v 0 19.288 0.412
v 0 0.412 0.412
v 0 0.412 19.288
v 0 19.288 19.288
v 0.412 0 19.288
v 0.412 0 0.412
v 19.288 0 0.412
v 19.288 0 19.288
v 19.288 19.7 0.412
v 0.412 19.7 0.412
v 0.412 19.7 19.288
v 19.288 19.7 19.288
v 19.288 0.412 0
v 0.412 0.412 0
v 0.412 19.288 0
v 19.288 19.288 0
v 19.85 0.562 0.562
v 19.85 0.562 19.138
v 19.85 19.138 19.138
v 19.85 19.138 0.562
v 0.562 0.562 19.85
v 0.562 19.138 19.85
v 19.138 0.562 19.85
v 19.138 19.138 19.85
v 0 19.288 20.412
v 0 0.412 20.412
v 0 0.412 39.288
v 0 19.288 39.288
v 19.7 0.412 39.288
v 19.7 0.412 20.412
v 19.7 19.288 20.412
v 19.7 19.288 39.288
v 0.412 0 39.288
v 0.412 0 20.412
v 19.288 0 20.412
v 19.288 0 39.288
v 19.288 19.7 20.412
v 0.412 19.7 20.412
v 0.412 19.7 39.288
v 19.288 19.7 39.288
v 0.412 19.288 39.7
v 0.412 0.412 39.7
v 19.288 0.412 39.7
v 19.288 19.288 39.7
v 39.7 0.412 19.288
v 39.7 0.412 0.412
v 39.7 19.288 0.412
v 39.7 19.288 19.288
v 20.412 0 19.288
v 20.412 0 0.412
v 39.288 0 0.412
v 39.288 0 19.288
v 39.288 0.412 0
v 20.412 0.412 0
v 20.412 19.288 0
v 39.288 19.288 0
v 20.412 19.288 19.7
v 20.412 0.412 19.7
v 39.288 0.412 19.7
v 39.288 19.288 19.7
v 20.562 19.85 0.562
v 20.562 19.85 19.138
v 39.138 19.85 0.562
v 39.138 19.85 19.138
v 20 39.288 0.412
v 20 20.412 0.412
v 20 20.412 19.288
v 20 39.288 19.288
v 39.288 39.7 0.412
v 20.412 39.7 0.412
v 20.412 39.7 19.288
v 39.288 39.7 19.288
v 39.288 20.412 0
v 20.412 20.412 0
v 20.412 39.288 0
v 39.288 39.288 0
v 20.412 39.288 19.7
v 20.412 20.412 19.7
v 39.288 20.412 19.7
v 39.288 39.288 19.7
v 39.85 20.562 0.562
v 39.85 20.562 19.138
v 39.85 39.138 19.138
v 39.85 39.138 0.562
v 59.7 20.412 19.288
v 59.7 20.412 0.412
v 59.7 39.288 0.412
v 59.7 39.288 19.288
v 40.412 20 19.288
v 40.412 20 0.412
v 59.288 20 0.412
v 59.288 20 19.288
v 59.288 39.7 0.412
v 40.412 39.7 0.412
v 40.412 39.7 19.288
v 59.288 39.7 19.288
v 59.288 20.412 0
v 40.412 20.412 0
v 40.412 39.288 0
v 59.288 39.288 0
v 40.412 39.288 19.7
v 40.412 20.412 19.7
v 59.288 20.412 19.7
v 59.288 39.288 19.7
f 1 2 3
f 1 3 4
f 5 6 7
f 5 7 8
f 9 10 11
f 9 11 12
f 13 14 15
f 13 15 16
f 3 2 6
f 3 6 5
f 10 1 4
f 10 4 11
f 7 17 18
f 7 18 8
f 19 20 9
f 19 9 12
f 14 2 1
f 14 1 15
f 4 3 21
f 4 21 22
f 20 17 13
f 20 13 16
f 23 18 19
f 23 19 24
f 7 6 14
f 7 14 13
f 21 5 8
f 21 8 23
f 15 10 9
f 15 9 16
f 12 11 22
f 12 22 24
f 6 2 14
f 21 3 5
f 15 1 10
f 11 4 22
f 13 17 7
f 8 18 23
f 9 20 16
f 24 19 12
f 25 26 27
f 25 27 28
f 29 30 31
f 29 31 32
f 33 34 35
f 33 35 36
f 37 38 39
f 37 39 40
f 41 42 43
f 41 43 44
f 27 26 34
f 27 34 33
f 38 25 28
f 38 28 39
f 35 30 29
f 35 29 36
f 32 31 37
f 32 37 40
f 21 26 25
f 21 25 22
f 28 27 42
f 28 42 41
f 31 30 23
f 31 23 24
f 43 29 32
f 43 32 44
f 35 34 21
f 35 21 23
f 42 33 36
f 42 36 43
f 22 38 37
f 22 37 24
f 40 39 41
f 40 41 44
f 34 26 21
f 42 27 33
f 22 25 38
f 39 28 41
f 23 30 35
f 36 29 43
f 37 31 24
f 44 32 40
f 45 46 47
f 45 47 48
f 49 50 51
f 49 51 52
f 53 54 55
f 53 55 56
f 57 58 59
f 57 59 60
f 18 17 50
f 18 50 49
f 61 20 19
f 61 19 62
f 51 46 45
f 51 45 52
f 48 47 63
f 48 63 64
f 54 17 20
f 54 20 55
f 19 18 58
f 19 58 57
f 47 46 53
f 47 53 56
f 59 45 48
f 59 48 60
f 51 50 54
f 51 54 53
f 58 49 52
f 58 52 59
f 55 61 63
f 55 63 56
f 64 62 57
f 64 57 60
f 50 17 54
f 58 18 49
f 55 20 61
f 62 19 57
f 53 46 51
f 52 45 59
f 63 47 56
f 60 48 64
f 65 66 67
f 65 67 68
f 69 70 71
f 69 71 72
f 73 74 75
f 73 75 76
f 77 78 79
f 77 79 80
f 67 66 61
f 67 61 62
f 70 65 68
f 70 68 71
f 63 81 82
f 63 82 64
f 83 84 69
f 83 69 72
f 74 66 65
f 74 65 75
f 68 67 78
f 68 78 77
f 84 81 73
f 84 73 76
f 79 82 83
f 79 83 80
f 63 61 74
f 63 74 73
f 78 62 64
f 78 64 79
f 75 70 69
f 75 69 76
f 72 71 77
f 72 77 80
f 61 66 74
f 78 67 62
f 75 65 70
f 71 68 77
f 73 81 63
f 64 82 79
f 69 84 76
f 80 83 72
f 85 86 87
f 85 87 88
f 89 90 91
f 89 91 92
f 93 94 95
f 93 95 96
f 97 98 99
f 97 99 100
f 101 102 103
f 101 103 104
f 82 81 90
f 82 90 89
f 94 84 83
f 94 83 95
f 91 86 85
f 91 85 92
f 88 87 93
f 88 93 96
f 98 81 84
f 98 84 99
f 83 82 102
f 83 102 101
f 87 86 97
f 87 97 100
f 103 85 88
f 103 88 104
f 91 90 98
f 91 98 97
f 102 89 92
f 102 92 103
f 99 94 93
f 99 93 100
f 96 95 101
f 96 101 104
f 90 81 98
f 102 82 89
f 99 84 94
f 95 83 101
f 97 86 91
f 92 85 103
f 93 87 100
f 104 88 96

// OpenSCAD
// Wongo piece 6: Lightning. GPL-3.0.
// 20 mm lattice; 0.15 mm inward surface clearance; 0.5 mm chamfer.
// Mesh is identical to the STL; changing unit scales the complete finished mesh.
unit=20;
scale([unit/20,unit/20,unit/20]) polyhedron(points=[[0,19.28786797,0.41213203],[0,0.41213203,0.41213203],[0,0.41213203,19.28786797],[0,19.28786797,19.28786797],[0.41213203,0,19.28786797],[0.41213203,0,0.41213203],[19.28786797,0,0.41213203],[19.28786797,0,19.28786797],[19.28786797,19.7,0.41213203],[0.41213203,19.7,0.41213203],[0.41213203,19.7,19.28786797],[19.28786797,19.7,19.28786797],[19.28786797,0.41213203,0],[0.41213203,0.41213203,0],[0.41213203,19.28786797,0],[19.28786797,19.28786797,0],[19.85,0.56213203,0.56213203],[19.85,0.56213203,19.13786797],[19.85,19.13786797,19.13786797],[19.85,19.13786797,0.56213203],[0.56213203,0.56213203,19.85],[0.56213203,19.13786797,19.85],[19.13786797,0.56213203,19.85],[19.13786797,19.13786797,19.85],[0,19.28786797,20.41213203],[0,0.41213203,20.41213203],[0,0.41213203,39.28786797],[0,19.28786797,39.28786797],[19.7,0.41213203,39.28786797],[19.7,0.41213203,20.41213203],[19.7,19.28786797,20.41213203],[19.7,19.28786797,39.28786797],[0.41213203,0,39.28786797],[0.41213203,0,20.41213203],[19.28786797,0,20.41213203],[19.28786797,0,39.28786797],[19.28786797,19.7,20.41213203],[0.41213203,19.7,20.41213203],[0.41213203,19.7,39.28786797],[19.28786797,19.7,39.28786797],[0.41213203,19.28786797,39.7],[0.41213203,0.41213203,39.7],[19.28786797,0.41213203,39.7],[19.28786797,19.28786797,39.7],[39.7,0.41213203,19.28786797],[39.7,0.41213203,0.41213203],[39.7,19.28786797,0.41213203],[39.7,19.28786797,19.28786797],[20.41213203,0,19.28786797],[20.41213203,0,0.41213203],[39.28786797,0,0.41213203],[39.28786797,0,19.28786797],[39.28786797,0.41213203,0],[20.41213203,0.41213203,0],[20.41213203,19.28786797,0],[39.28786797,19.28786797,0],[20.41213203,19.28786797,19.7],[20.41213203,0.41213203,19.7],[39.28786797,0.41213203,19.7],[39.28786797,19.28786797,19.7],[20.56213203,19.85,0.56213203],[20.56213203,19.85,19.13786797],[39.13786797,19.85,0.56213203],[39.13786797,19.85,19.13786797],[20,39.28786797,0.41213203],[20,20.41213203,0.41213203],[20,20.41213203,19.28786797],[20,39.28786797,19.28786797],[39.28786797,39.7,0.41213203],[20.41213203,39.7,0.41213203],[20.41213203,39.7,19.28786797],[39.28786797,39.7,19.28786797],[39.28786797,20.41213203,0],[20.41213203,20.41213203,0],[20.41213203,39.28786797,0],[39.28786797,39.28786797,0],[20.41213203,39.28786797,19.7],[20.41213203,20.41213203,19.7],[39.28786797,20.41213203,19.7],[39.28786797,39.28786797,19.7],[39.85,20.56213203,0.56213203],[39.85,20.56213203,19.13786797],[39.85,39.13786797,19.13786797],[39.85,39.13786797,0.56213203],[59.7,20.41213203,19.28786797],[59.7,20.41213203,0.41213203],[59.7,39.28786797,0.41213203],[59.7,39.28786797,19.28786797],[40.41213203,20,19.28786797],[40.41213203,20,0.41213203],[59.28786797,20,0.41213203],[59.28786797,20,19.28786797],[59.28786797,39.7,0.41213203],[40.41213203,39.7,0.41213203],[40.41213203,39.7,19.28786797],[59.28786797,39.7,19.28786797],[59.28786797,20.41213203,0],[40.41213203,20.41213203,0],[40.41213203,39.28786797,0],[59.28786797,39.28786797,0],[40.41213203,39.28786797,19.7],[40.41213203,20.41213203,19.7],[59.28786797,20.41213203,19.7],[59.28786797,39.28786797,19.7]],faces=[[2,1,0],[3,2,0],[6,5,4],[7,6,4],[10,9,8],[11,10,8],[14,13,12],[15,14,12],[5,1,2],[4,5,2],[3,0,9],[10,3,9],[17,16,6],[7,17,6],[8,19,18],[11,8,18],[0,1,13],[14,0,13],[20,2,3],[21,20,3],[12,16,19],[15,12,19],[18,17,22],[23,18,22],[13,5,6],[12,13,6],[7,4,20],[22,7,20],[8,9,14],[15,8,14],[21,10,11],[23,21,11],[13,1,5],[4,2,20],[9,0,14],[21,3,10],[6,16,12],[22,17,7],[15,19,8],[11,18,23],[26,25,24],[27,26,24],[30,29,28],[31,30,28],[34,33,32],[35,34,32],[38,37,36],[39,38,36],[42,41,40],[43,42,40],[33,25,26],[32,33,26],[27,24,37],[38,27,37],[28,29,34],[35,28,34],[36,30,31],[39,36,31],[24,25,20],[21,24,20],[41,26,27],[40,41,27],[22,29,30],[23,22,30],[31,28,42],[43,31,42],[20,33,34],[22,20,34],[35,32,41],[42,35,41],[36,37,21],[23,36,21],[40,38,39],[43,40,39],[20,25,33],[32,26,41],[37,24,21],[40,27,38],[34,29,22],[42,28,35],[23,30,36],[39,31,43],[46,45,44],[47,46,44],[50,49,48],[51,50,48],[54,53,52],[55,54,52],[58,57,56],[59,58,56],[49,16,17],[48,49,17],[18,19,60],[61,18,60],[44,45,50],[51,44,50],[62,46,47],[63,62,47],[19,16,53],[54,19,53],[57,17,18],[56,57,18],[52,45,46],[55,52,46],[47,44,58],[59,47,58],[53,49,50],[52,53,50],[51,48,57],[58,51,57],[62,60,54],[55,62,54],[56,61,63],[59,56,63],[53,16,49],[48,17,57],[60,19,54],[56,18,61],[50,45,52],[58,44,51],[55,46,62],[63,47,59],[66,65,64],[67,66,64],[70,69,68],[71,70,68],[74,73,72],[75,74,72],[78,77,76],[79,78,76],[60,65,66],[61,60,66],[67,64,69],[70,67,69],[81,80,62],[63,81,62],[68,83,82],[71,68,82],[64,65,73],[74,64,73],[77,66,67],[76,77,67],[72,80,83],[75,72,83],[82,81,78],[79,82,78],[73,60,62],[72,73,62],[63,61,77],[78,63,77],[68,69,74],[75,68,74],[76,70,71],[79,76,71],[73,65,60],[61,66,77],[69,64,74],[76,67,70],[62,80,72],[78,81,63],[75,83,68],[71,82,79],[86,85,84],[87,86,84],[90,89,88],[91,90,88],[94,93,92],[95,94,92],[98,97,96],[99,98,96],[102,101,100],[103,102,100],[89,80,81],[88,89,81],[82,83,93],[94,82,93],[84,85,90],[91,84,90],[92,86,87],[95,92,87],[83,80,97],[98,83,97],[101,81,82],[100,101,82],[96,85,86],[99,96,86],[87,84,102],[103,87,102],[97,89,90],[96,97,90],[91,88,101],[102,91,101],[92,93,98],[99,92,98],[100,94,95],[103,100,95],[97,80,89],[88,81,101],[93,83,98],[100,82,94],[90,85,96],[102,84,91],[99,86,92],[95,87,103]],convexity=10);
